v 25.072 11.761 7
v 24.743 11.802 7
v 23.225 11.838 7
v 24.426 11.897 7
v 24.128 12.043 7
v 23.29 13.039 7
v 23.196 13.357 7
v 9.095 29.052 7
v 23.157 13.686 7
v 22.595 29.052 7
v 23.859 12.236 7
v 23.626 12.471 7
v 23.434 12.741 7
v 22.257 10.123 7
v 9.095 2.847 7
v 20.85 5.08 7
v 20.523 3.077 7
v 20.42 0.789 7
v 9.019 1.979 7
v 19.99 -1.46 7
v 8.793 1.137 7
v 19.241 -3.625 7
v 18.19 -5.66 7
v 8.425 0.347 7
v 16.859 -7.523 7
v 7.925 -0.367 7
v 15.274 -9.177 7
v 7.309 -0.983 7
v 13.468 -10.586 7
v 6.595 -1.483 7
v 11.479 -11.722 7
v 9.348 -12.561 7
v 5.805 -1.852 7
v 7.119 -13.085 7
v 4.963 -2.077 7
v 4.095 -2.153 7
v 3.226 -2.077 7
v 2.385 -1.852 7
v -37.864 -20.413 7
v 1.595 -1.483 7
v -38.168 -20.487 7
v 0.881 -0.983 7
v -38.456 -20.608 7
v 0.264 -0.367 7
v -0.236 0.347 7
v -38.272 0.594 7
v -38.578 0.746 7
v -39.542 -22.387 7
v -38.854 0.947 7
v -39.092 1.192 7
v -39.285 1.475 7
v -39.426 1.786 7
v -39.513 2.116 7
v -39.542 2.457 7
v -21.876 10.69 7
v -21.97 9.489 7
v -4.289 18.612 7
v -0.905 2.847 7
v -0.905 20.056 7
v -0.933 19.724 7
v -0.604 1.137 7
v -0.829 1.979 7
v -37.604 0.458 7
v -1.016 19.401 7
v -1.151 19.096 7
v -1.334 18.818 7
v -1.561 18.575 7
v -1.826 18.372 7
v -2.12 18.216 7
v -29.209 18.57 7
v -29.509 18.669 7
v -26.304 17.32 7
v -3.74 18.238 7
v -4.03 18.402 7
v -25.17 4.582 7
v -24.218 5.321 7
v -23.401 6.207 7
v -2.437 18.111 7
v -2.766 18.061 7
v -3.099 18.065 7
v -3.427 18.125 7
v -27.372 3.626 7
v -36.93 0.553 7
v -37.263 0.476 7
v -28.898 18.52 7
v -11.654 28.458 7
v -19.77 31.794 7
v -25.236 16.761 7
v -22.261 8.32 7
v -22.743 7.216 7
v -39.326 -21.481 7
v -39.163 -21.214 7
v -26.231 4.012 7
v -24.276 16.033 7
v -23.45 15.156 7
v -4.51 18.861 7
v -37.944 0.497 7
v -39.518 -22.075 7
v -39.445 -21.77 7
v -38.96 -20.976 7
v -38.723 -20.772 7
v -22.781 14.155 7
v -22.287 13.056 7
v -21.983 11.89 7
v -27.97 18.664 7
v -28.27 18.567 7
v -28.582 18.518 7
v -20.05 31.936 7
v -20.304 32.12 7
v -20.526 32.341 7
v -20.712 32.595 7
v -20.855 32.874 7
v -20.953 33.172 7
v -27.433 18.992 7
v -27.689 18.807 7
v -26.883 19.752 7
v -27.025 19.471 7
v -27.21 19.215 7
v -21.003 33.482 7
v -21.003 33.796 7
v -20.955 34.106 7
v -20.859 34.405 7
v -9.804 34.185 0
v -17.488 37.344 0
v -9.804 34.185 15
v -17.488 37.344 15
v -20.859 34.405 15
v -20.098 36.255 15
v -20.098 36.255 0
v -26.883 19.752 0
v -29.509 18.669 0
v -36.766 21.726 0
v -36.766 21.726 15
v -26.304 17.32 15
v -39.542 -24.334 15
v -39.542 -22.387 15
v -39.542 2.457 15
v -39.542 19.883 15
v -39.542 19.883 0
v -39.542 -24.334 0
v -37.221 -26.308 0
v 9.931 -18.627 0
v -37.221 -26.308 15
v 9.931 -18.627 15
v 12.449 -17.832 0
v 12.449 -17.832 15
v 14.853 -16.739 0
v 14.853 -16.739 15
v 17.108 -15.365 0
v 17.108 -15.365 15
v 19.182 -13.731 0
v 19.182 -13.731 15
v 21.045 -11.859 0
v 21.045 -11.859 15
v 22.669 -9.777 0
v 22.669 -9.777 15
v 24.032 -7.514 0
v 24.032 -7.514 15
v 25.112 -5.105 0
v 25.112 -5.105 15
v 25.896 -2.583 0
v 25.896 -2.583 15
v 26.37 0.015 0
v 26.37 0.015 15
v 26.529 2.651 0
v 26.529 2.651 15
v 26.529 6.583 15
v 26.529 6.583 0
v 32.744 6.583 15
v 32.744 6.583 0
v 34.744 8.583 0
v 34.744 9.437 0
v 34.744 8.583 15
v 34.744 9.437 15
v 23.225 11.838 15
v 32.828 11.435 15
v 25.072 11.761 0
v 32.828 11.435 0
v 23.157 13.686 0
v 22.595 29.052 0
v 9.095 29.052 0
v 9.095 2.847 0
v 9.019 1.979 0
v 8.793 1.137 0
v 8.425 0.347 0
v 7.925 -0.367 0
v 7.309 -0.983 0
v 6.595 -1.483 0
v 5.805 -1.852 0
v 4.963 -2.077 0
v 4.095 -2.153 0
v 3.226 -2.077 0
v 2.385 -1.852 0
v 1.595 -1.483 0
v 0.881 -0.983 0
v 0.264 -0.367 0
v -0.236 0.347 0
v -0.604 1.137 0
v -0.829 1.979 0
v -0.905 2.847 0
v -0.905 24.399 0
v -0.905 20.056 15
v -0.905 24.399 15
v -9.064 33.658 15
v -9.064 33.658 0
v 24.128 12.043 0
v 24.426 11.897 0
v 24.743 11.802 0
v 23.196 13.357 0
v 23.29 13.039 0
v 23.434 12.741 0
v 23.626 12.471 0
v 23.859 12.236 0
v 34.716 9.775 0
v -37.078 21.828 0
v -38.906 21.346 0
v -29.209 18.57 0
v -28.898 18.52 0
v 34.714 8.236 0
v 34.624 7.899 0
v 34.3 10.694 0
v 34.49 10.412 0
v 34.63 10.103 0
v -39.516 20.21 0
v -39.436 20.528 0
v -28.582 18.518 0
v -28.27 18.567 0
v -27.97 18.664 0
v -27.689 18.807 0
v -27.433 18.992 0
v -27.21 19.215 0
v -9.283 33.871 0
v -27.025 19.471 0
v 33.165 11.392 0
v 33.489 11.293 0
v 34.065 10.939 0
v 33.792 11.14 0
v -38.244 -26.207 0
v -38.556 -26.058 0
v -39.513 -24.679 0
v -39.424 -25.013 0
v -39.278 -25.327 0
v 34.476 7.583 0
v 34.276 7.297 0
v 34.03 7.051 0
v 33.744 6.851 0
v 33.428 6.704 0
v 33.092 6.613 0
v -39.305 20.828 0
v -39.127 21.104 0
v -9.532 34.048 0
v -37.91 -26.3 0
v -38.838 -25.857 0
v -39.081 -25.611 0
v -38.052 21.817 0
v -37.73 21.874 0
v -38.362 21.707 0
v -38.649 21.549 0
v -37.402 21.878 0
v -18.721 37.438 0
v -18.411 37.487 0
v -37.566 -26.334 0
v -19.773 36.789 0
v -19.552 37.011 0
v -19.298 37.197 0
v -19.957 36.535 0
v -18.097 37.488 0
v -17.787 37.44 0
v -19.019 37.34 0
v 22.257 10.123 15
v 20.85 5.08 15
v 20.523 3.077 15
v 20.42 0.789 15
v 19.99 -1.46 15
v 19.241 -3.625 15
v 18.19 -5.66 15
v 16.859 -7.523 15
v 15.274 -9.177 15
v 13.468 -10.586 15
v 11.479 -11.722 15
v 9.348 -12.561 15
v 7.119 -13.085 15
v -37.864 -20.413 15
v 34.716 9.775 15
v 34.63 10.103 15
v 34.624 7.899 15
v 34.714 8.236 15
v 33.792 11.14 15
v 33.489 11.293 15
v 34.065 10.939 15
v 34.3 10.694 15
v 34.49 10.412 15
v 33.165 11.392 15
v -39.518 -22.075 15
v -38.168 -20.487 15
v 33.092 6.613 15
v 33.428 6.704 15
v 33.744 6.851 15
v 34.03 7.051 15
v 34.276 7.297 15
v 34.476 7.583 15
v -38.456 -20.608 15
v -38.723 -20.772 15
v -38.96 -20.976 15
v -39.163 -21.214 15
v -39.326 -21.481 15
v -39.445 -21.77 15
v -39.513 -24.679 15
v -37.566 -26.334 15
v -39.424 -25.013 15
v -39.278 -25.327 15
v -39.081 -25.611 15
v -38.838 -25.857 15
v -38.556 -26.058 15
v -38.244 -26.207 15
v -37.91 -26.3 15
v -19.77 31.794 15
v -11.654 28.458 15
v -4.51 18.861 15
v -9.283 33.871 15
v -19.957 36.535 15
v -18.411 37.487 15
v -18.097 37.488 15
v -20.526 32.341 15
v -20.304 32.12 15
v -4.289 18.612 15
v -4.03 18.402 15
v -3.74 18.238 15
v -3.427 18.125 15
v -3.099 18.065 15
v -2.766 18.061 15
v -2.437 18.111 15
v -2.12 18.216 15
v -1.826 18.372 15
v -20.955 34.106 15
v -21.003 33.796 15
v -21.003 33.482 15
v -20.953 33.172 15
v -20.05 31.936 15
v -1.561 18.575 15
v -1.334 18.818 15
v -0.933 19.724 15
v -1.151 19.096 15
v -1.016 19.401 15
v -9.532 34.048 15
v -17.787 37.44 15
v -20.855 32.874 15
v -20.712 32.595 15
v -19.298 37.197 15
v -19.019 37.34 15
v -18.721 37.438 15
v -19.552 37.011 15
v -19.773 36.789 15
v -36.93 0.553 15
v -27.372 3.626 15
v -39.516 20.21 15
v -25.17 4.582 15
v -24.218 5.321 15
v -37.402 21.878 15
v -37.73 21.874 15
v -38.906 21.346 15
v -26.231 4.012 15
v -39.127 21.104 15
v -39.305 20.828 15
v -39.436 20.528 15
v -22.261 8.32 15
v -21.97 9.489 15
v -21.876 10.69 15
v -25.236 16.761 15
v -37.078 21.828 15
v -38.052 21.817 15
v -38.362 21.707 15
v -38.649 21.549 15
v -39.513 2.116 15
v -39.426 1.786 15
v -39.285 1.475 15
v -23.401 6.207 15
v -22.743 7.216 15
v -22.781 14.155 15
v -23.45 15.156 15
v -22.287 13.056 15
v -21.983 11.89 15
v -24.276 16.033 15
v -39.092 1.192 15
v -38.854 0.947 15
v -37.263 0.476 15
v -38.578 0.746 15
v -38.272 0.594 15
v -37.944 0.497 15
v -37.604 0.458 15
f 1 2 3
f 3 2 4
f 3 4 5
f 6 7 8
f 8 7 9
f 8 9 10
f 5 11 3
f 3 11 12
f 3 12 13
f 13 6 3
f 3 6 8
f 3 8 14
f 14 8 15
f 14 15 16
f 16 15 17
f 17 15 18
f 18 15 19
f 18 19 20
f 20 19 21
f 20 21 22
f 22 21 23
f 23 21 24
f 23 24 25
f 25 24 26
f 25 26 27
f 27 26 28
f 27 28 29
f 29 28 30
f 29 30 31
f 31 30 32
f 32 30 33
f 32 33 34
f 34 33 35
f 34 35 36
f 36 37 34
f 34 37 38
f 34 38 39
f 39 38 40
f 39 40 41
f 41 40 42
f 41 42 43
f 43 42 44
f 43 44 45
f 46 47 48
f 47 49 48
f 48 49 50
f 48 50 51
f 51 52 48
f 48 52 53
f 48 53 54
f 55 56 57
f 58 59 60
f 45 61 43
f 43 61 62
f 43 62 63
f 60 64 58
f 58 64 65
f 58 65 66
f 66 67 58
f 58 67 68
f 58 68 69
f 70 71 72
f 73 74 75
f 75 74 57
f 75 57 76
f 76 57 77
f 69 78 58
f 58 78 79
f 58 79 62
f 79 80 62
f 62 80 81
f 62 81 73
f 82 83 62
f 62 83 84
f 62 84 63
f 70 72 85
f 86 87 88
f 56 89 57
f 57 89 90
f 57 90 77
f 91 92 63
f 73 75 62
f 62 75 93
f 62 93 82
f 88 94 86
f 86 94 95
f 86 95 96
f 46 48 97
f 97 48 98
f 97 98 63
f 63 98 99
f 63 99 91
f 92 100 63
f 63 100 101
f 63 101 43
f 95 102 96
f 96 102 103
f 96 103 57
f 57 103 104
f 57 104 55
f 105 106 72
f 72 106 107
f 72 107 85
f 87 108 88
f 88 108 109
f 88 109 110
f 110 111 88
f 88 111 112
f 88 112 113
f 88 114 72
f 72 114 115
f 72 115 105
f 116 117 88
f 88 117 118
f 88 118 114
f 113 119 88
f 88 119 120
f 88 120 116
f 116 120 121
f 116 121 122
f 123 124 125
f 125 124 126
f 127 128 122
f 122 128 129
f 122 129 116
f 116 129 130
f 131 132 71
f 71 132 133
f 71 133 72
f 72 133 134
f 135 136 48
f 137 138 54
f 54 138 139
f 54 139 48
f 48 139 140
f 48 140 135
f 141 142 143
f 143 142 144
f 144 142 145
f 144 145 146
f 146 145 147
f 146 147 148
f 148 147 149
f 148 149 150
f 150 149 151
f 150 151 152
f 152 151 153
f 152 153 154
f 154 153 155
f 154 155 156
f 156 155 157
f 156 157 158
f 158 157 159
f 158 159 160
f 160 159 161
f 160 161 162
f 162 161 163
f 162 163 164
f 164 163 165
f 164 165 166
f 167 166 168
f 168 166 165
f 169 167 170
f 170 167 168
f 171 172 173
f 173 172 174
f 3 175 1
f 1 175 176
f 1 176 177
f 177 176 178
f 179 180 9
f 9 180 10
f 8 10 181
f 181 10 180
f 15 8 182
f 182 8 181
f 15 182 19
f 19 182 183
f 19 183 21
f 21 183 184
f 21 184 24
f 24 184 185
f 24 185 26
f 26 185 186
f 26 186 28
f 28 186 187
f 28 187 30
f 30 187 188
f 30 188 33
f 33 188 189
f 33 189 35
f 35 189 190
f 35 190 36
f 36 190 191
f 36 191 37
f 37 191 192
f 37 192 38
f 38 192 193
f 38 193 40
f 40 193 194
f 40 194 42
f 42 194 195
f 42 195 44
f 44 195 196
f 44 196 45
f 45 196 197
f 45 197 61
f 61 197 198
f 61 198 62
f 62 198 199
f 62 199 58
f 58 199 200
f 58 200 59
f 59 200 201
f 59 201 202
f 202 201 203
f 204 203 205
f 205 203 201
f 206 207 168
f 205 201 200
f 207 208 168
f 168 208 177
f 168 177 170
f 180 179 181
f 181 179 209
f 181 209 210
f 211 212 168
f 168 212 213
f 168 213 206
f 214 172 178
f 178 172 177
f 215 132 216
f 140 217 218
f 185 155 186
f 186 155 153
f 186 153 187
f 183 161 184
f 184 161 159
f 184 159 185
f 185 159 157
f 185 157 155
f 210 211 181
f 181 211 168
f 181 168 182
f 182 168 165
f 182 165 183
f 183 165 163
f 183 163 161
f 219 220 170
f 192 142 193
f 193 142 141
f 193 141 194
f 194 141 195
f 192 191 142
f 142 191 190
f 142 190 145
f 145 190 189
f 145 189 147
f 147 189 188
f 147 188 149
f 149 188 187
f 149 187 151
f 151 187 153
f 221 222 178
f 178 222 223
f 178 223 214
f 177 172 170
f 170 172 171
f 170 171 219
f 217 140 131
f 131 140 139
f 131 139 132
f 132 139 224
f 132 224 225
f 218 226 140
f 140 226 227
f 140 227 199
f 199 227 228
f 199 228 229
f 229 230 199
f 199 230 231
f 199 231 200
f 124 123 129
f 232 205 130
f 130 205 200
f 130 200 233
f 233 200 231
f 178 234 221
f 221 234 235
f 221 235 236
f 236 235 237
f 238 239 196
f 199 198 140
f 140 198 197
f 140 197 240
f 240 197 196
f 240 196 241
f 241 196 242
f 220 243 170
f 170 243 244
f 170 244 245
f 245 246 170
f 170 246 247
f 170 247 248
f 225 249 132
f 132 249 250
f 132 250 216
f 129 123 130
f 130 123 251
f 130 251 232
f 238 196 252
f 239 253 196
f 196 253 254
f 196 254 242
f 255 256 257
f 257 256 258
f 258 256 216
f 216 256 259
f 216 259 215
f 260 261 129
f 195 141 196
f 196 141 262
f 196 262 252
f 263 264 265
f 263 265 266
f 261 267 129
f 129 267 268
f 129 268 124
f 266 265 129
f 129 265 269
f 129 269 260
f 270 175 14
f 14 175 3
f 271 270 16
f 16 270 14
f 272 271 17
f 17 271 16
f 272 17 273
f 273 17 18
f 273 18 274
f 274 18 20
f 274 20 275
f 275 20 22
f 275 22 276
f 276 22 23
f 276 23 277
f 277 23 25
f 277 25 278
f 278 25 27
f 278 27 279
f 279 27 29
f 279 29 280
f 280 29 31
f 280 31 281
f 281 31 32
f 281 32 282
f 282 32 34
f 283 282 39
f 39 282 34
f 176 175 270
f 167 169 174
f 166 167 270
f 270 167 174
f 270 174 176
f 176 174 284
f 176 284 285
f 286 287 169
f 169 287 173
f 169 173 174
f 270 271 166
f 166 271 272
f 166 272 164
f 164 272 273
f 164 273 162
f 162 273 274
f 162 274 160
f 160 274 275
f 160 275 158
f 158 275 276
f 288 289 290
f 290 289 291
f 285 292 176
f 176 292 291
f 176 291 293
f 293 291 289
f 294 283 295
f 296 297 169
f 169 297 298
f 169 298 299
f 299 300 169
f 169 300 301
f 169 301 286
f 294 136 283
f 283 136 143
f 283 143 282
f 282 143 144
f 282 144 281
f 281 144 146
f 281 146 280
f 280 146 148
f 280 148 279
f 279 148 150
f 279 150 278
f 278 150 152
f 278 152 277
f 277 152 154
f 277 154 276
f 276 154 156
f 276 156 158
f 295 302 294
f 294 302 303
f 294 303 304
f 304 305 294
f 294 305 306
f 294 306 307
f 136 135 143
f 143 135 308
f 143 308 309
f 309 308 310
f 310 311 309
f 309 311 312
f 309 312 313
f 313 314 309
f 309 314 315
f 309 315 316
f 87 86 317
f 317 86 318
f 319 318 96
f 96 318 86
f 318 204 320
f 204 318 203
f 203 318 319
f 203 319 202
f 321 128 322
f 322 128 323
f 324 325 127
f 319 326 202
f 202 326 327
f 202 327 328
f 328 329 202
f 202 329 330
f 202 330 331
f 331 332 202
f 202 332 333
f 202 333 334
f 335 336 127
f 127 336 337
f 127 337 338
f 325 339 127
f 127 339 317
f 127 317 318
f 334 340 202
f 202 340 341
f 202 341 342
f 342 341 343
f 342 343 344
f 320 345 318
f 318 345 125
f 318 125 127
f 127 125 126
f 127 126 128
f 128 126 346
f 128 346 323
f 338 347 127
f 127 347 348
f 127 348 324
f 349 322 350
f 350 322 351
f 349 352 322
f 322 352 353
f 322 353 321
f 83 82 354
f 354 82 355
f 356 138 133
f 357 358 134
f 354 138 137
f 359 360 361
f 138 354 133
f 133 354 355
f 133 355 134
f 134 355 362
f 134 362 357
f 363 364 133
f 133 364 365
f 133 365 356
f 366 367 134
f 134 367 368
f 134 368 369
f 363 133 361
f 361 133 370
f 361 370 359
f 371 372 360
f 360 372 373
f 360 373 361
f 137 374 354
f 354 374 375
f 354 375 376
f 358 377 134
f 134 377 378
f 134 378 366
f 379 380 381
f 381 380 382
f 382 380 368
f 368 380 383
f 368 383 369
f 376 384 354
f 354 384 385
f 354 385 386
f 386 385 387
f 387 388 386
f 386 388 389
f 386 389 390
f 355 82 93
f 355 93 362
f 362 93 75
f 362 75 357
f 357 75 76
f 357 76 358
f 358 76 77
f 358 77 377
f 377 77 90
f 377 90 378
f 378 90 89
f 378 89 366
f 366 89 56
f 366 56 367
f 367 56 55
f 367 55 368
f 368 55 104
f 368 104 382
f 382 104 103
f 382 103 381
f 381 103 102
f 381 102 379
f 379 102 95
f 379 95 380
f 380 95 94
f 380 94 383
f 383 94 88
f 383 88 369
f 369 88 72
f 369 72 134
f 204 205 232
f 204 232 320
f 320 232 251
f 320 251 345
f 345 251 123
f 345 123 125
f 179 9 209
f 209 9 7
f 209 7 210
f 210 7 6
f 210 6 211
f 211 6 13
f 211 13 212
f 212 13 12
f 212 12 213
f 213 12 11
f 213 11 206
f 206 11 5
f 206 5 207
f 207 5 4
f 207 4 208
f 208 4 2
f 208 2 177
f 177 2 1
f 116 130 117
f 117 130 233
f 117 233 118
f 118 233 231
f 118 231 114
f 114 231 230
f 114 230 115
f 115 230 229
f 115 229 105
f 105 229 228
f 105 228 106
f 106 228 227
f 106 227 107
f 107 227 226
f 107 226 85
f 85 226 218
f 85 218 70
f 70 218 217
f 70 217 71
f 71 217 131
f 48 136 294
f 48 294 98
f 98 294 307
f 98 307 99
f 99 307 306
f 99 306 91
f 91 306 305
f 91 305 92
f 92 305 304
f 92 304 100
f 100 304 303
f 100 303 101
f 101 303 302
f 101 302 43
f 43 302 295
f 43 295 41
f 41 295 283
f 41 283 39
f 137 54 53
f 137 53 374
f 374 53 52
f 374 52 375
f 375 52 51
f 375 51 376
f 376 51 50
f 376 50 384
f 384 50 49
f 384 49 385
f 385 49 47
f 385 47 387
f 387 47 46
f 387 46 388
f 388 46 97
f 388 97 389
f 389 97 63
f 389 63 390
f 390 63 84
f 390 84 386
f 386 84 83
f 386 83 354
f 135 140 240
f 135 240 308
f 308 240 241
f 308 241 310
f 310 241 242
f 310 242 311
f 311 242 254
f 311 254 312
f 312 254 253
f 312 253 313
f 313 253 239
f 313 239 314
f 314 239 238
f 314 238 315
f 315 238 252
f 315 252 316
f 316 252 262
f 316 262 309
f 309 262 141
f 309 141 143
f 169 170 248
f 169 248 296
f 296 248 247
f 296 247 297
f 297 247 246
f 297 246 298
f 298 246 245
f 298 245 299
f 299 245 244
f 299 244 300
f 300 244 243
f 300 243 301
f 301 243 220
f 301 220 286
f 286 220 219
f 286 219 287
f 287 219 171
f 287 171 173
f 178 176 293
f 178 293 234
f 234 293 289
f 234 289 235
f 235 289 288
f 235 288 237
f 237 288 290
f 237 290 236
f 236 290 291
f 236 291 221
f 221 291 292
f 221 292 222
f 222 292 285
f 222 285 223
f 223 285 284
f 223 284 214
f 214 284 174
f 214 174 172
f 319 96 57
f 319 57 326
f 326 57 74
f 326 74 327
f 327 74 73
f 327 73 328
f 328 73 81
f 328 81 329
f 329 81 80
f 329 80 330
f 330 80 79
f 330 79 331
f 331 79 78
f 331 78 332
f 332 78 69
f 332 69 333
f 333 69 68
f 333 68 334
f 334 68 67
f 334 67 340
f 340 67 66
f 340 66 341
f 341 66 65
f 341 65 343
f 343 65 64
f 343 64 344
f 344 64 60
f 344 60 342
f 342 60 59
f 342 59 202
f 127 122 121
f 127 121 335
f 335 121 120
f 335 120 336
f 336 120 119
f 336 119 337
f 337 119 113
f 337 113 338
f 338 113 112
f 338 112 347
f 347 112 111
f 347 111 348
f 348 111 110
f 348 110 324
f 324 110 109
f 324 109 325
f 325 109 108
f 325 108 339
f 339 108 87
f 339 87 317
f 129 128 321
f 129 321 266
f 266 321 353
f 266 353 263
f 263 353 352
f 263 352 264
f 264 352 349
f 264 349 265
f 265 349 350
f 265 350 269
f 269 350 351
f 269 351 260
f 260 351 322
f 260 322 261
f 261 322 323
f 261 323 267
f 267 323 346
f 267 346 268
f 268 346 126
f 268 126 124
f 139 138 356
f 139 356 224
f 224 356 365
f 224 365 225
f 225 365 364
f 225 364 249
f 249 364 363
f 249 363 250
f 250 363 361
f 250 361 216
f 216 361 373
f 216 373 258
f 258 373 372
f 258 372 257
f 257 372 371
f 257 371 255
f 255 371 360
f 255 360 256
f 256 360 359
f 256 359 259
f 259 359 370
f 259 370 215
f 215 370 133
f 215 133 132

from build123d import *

# Parameters (mm, degrees)
BOSS_EXTRUDE2_DEPTH = 7
BOSS_EXTRUDE3_DEPTH = 15
FILLET1_R           = 2


with BuildPart() as part:
    # Sketch1 → Boss-Extrude2 (new body)
    with BuildSketch(Plane.XY):
        with BuildLine():
            Line((-0.9053830432367259, 24.399326740540857), (-9.372834944506629, 34.00764813303465))
            Line((-9.372834944506627, 34.00764813303465), (-19.338054555793107, 38.10430027910595))
            Line((-19.338054555793107, 38.10430027910595), (-27.64949584669558, 17.88648954074799))
            Line((-27.64949584669558, 17.886489540747988), (-39.54243331524863, 22.895355765149752))
            Line((-39.54243331524863, 22.895355765149752), (-39.54243331524862, -26.68595837588142))
            Line((-39.54243331524862, -26.68595837588142), (9.930508904802714, -18.62730077710855))
            ThreePointArc((9.930508904802696, -18.62730077710854), (21.888607340272763, -10.842166970276782), (26.528997575110665, 2.651209369657105))
            Line((26.528997575110658, 2.6512093696571015), (26.528997575110658, 6.583034036121315))
            Line((26.528997575110658, 6.583034036121315), (34.74430312273597, 6.583034036121314))
            Line((34.74430312273597, 6.583034036121314), (34.74430312273597, 11.35464156582886))
            Line((34.74430312273597, 11.35464156582886), (23.22459679983159, 11.838054320739976))
            Line((23.22459679983159, 11.838054320739976), (22.59461695676328, 29.0520343287084))
            Line((22.59461695676328, 29.052034328708398), (9.094616956763277, 29.052034328708398))
            Line((9.094616956763277, 29.052034328708398), (9.094616956763272, 2.8469015838410883))
            ThreePointArc((9.094616956763272, 2.846901583841089), (4.094616956763275, -2.153098416158908), (-0.9053830432367223, 2.8469015838410887))
            Line((-0.905383043236724, 2.846901583841089), (-0.9053830432367259, 24.399326740540857))
        make_face()
    extrude(amount=BOSS_EXTRUDE2_DEPTH)

    # Sketch1<7> → Boss-Extrude3 (add)
    with BuildSketch(Plane.XY):
        Polygon((-0.9053830432367259, 14.019993611037982), (-0.9053830432367259, 24.399326740540857), (-9.372834944506629, 34.00764813303465), (-19.338054555793107, 38.10430027910595), (-21.61937542853537, 32.55492418123779), (-11.654155817248892, 28.458272035166488), align=None)
        with BuildLine():
            Line((7.118615678125689, -13.085330635476566), (-39.542433315248616, -20.685958375881416))
            Line((-39.54243331524862, -20.685958375881416), (-39.54243331524862, -26.68595837588142))
            Line((-39.54243331524862, -26.68595837588142), (9.930508904802714, -18.62730077710855))
            ThreePointArc((9.930508904802696, -18.62730077710854), (21.888607340272763, -10.842166970276782), (26.528997575110665, 2.651209369657105))
            Line((26.528997575110658, 2.6512093696571015), (26.528997575110658, 6.583034036121315))
            Line((26.528997575110658, 6.583034036121315), (34.74430312273597, 6.583034036121314))
            Line((34.74430312273597, 6.583034036121314), (34.74430312273597, 11.35464156582886))
            Line((34.74430312273597, 11.35464156582886), (23.22459679983159, 11.838054320739976))
            Line((23.224596799831595, 11.838054320739976), (22.25718626662765, 10.122973627008314))
            Line((22.25718626662765, 10.122973627008314), (20.85012579434564, 5.080010210629205))
            Line((20.85012579434564, 5.080010210629205), (20.52330351237285, 3.0772079508363284))
            ThreePointArc((20.523303512372856, 3.0772079508363284), (16.858734444980243, -7.523493754122956), (7.118615678125689, -13.085330635476565))
        make_face()
        with BuildLine():
            Line((-39.54243331524863, 22.895355765149752), (-39.54243331524863, -0.28742000905455))
            Line((-39.54243331524863, -0.28742000905455356), (-27.372162273437738, 3.6262968896541157))
            ThreePointArc((-27.372162273437734, 3.6262968896540997), (-21.8978313295958, 10.087488754460773), (-26.30362524162322, 17.319658525787453))
            Line((-26.30362524162322, 17.319658525787453), (-39.54243331524863, 22.895355765149752))
        make_face()
    extrude(amount=BOSS_EXTRUDE3_DEPTH)

    # Fillet1
    fillet1_edges = [part.edges().sort_by_distance(p)[0] for p in [
        (-39.542433315248616, -20.685958375881416, 11),
        (-39.54243331524863, -0.2874200090545518, 11),
        (-39.54243331524862, -26.68595837588142, 7.5),
        (34.74430312273597, 6.583034036121314, 7.5),
        (34.74430312273597, 11.35464156582886, 7.5),
        (-0.9053830432367262, 14.019993611037982, 11),
        (-21.61937542853537, 32.55492418123779, 11),
        (-19.338054555793107, 38.10430027910595, 7.5),
        (-39.54243331524863, 22.895355765149752, 7.5),
        (-27.64949584669558, 17.886489540747988, 3.5),
        (23.22459679983159, 11.838054320739976, 3.5),
        (-9.372834944506629, 34.00764813303465, 7.5),
    ]]
    fillet(fillet1_edges, radius=FILLET1_R)


solid = part.part
